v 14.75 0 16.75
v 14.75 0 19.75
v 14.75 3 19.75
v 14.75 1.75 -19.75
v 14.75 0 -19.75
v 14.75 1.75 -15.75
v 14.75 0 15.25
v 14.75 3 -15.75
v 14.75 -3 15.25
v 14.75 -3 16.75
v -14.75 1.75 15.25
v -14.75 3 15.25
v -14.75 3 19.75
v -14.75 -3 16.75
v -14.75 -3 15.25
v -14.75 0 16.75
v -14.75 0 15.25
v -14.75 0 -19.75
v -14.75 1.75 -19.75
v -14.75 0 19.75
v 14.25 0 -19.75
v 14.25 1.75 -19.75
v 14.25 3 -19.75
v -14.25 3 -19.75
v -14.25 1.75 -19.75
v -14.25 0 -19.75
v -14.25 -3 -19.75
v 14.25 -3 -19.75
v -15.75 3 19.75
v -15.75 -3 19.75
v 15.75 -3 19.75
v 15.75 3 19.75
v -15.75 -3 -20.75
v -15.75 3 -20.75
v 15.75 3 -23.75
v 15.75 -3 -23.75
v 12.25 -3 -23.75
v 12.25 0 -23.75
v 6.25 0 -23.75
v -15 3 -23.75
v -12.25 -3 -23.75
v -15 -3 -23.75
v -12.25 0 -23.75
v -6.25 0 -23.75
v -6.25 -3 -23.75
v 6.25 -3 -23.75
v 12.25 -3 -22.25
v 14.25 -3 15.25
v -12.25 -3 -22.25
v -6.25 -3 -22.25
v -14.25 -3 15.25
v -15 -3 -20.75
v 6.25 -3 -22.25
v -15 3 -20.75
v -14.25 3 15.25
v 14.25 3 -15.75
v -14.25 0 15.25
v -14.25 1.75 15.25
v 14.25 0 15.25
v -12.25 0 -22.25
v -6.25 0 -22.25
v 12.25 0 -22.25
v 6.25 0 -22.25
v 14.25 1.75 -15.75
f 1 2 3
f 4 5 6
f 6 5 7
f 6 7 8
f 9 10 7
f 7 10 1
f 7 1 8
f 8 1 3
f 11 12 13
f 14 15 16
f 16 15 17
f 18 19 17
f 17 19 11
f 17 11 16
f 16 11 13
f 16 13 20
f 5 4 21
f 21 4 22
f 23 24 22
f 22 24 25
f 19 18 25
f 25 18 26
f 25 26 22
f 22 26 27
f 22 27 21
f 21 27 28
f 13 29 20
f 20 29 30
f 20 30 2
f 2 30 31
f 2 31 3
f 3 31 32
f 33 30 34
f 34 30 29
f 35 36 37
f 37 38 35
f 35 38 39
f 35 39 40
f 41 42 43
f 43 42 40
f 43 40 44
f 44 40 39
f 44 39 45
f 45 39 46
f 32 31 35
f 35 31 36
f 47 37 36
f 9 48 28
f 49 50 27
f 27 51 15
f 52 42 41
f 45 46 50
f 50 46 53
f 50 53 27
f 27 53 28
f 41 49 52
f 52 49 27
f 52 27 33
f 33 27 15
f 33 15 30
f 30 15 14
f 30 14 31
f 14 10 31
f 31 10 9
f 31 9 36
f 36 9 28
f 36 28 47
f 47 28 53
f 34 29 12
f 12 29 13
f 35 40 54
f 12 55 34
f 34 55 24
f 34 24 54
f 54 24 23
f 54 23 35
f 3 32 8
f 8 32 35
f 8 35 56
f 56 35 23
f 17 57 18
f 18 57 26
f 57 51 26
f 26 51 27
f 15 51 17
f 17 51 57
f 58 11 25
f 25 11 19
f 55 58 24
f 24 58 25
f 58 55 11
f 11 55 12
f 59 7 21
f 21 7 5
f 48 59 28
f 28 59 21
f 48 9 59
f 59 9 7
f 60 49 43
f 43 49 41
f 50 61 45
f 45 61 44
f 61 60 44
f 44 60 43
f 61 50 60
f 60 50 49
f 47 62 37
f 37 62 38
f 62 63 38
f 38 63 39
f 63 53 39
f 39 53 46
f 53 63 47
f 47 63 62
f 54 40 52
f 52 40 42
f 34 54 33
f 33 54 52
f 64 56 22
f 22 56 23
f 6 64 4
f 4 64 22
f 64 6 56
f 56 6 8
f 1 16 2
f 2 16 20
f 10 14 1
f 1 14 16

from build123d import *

# Parameters (mm, degrees)
EXTRUDE_1_DEPTH      = 3
EXTRUDE_1_DEPTH_BACK = 3
SKETCH_2_W           = 0.5
SKETCH_2_H           = 1.25
SKETCH_2_H_2         = 3
EXTRUDE_2_DEPTH      = 35
SKETCH_3_W           = 6
SKETCH_3_H           = 3
CUT_EXTRUDE_1_DEPTH  = 1.5
CUT_EXTRUDE_2_REACH  = 31.123
SKETCH_4_W           = 0.75
SKETCH_4_H           = 3
SKETCH_2_4_W         = 0.5
SKETCH_2_4_H         = 1.25
EXTRUDE_3_DEPTH      = 4
EXTRUDE_4_REACH      = 40.773
SKETCH_5_W           = 3
SKETCH_5_H           = 3


with BuildPart() as part:
    # 草图1 → 凸台-拉伸1 (new, two sides: drawn at the far end of the back side and taken through both)
    with BuildSketch(Plane(origin=(0, 0, 0), x_dir=(1, 0, 0), z_dir=(0, 1, 0)).offset(-EXTRUDE_1_DEPTH_BACK)):
        Polygon((-14.75, -19.75), (-14.75, 19.75), (14.75, 19.75), (14.75, -19.75), (15.75, -19.75), (15.75, 23.75), (-15.75, 23.75), (-15.75, -19.75), align=None)
    extrude(amount=EXTRUDE_1_DEPTH + EXTRUDE_1_DEPTH_BACK)

    # 草图2 → 凸台-拉伸2 (add)
    with BuildSketch(Plane.XY.offset(-19.75)):
        with Locations((-14.5, 2.375)):
            Rectangle(SKETCH_2_W, SKETCH_2_H)
        with Locations((-14.5, -1.5)):
            Rectangle(SKETCH_2_W, SKETCH_2_H_2)
        with Locations((14.5, -1.5)):
            Rectangle(SKETCH_2_W, SKETCH_2_H_2)
    extrude(amount=EXTRUDE_2_DEPTH)

    # 草图3 → 切除-拉伸1 (cut)
    with BuildSketch(Plane(origin=(0, 0, -23.75), x_dir=(-1, 0, 0), z_dir=(0, 0, -1))):
        with Locations((-9.25, -1.5)):
            Rectangle(SKETCH_3_W, SKETCH_3_H)
        with Locations((9.25, -1.5)):
            Rectangle(SKETCH_3_W, SKETCH_3_H)
    extrude(amount=-CUT_EXTRUDE_1_DEPTH, mode=Mode.SUBTRACT)

    # 草图4 → 切除-拉伸2 (cut, up to next)
    with BuildSketch(Plane(origin=(0, 3, 0), x_dir=(1, 0, 0), z_dir=(0, 1, 0)), mode=Mode.PRIVATE) as cut_extrude_2_sk1:
        with Locations((-15.375, 22.25)):
            Rectangle(SKETCH_4_W, SKETCH_4_H)
    cut_extrude_2_tool1 = extrude(cut_extrude_2_sk1.sketch, amount=-CUT_EXTRUDE_2_REACH, mode=Mode.PRIVATE) & part.part
    add(cut_extrude_2_tool1.solids().sort_by_distance((-15.375, 3, -22.25))[0], mode=Mode.SUBTRACT)

    # 草图2<4> → 凸台-拉伸3 (add)
    with BuildSketch(Plane.XY.offset(-19.75)):
        with Locations((14.5, 2.375)):
            Rectangle(SKETCH_2_4_W, SKETCH_2_4_H)
    extrude(amount=EXTRUDE_3_DEPTH)

    # 草图5 → 凸台-拉伸4 (add, up to next)
    with BuildSketch(Plane(origin=(-14.75, 0, 0), x_dir=(0, 0, -1), z_dir=(1, 0, 0)), mode=Mode.PRIVATE) as extrude_4_sk1:
        with Locations((-18.25, -1.5)):
            Rectangle(SKETCH_5_W, SKETCH_5_H)
    extrude_4_tool1 = extrude(extrude_4_sk1.sketch, amount=EXTRUDE_4_REACH, mode=Mode.PRIVATE) - part.part
    add(extrude_4_tool1.solids().sort_by_distance((-14.75, -1.5, 18.25))[0])


solid = part.part
